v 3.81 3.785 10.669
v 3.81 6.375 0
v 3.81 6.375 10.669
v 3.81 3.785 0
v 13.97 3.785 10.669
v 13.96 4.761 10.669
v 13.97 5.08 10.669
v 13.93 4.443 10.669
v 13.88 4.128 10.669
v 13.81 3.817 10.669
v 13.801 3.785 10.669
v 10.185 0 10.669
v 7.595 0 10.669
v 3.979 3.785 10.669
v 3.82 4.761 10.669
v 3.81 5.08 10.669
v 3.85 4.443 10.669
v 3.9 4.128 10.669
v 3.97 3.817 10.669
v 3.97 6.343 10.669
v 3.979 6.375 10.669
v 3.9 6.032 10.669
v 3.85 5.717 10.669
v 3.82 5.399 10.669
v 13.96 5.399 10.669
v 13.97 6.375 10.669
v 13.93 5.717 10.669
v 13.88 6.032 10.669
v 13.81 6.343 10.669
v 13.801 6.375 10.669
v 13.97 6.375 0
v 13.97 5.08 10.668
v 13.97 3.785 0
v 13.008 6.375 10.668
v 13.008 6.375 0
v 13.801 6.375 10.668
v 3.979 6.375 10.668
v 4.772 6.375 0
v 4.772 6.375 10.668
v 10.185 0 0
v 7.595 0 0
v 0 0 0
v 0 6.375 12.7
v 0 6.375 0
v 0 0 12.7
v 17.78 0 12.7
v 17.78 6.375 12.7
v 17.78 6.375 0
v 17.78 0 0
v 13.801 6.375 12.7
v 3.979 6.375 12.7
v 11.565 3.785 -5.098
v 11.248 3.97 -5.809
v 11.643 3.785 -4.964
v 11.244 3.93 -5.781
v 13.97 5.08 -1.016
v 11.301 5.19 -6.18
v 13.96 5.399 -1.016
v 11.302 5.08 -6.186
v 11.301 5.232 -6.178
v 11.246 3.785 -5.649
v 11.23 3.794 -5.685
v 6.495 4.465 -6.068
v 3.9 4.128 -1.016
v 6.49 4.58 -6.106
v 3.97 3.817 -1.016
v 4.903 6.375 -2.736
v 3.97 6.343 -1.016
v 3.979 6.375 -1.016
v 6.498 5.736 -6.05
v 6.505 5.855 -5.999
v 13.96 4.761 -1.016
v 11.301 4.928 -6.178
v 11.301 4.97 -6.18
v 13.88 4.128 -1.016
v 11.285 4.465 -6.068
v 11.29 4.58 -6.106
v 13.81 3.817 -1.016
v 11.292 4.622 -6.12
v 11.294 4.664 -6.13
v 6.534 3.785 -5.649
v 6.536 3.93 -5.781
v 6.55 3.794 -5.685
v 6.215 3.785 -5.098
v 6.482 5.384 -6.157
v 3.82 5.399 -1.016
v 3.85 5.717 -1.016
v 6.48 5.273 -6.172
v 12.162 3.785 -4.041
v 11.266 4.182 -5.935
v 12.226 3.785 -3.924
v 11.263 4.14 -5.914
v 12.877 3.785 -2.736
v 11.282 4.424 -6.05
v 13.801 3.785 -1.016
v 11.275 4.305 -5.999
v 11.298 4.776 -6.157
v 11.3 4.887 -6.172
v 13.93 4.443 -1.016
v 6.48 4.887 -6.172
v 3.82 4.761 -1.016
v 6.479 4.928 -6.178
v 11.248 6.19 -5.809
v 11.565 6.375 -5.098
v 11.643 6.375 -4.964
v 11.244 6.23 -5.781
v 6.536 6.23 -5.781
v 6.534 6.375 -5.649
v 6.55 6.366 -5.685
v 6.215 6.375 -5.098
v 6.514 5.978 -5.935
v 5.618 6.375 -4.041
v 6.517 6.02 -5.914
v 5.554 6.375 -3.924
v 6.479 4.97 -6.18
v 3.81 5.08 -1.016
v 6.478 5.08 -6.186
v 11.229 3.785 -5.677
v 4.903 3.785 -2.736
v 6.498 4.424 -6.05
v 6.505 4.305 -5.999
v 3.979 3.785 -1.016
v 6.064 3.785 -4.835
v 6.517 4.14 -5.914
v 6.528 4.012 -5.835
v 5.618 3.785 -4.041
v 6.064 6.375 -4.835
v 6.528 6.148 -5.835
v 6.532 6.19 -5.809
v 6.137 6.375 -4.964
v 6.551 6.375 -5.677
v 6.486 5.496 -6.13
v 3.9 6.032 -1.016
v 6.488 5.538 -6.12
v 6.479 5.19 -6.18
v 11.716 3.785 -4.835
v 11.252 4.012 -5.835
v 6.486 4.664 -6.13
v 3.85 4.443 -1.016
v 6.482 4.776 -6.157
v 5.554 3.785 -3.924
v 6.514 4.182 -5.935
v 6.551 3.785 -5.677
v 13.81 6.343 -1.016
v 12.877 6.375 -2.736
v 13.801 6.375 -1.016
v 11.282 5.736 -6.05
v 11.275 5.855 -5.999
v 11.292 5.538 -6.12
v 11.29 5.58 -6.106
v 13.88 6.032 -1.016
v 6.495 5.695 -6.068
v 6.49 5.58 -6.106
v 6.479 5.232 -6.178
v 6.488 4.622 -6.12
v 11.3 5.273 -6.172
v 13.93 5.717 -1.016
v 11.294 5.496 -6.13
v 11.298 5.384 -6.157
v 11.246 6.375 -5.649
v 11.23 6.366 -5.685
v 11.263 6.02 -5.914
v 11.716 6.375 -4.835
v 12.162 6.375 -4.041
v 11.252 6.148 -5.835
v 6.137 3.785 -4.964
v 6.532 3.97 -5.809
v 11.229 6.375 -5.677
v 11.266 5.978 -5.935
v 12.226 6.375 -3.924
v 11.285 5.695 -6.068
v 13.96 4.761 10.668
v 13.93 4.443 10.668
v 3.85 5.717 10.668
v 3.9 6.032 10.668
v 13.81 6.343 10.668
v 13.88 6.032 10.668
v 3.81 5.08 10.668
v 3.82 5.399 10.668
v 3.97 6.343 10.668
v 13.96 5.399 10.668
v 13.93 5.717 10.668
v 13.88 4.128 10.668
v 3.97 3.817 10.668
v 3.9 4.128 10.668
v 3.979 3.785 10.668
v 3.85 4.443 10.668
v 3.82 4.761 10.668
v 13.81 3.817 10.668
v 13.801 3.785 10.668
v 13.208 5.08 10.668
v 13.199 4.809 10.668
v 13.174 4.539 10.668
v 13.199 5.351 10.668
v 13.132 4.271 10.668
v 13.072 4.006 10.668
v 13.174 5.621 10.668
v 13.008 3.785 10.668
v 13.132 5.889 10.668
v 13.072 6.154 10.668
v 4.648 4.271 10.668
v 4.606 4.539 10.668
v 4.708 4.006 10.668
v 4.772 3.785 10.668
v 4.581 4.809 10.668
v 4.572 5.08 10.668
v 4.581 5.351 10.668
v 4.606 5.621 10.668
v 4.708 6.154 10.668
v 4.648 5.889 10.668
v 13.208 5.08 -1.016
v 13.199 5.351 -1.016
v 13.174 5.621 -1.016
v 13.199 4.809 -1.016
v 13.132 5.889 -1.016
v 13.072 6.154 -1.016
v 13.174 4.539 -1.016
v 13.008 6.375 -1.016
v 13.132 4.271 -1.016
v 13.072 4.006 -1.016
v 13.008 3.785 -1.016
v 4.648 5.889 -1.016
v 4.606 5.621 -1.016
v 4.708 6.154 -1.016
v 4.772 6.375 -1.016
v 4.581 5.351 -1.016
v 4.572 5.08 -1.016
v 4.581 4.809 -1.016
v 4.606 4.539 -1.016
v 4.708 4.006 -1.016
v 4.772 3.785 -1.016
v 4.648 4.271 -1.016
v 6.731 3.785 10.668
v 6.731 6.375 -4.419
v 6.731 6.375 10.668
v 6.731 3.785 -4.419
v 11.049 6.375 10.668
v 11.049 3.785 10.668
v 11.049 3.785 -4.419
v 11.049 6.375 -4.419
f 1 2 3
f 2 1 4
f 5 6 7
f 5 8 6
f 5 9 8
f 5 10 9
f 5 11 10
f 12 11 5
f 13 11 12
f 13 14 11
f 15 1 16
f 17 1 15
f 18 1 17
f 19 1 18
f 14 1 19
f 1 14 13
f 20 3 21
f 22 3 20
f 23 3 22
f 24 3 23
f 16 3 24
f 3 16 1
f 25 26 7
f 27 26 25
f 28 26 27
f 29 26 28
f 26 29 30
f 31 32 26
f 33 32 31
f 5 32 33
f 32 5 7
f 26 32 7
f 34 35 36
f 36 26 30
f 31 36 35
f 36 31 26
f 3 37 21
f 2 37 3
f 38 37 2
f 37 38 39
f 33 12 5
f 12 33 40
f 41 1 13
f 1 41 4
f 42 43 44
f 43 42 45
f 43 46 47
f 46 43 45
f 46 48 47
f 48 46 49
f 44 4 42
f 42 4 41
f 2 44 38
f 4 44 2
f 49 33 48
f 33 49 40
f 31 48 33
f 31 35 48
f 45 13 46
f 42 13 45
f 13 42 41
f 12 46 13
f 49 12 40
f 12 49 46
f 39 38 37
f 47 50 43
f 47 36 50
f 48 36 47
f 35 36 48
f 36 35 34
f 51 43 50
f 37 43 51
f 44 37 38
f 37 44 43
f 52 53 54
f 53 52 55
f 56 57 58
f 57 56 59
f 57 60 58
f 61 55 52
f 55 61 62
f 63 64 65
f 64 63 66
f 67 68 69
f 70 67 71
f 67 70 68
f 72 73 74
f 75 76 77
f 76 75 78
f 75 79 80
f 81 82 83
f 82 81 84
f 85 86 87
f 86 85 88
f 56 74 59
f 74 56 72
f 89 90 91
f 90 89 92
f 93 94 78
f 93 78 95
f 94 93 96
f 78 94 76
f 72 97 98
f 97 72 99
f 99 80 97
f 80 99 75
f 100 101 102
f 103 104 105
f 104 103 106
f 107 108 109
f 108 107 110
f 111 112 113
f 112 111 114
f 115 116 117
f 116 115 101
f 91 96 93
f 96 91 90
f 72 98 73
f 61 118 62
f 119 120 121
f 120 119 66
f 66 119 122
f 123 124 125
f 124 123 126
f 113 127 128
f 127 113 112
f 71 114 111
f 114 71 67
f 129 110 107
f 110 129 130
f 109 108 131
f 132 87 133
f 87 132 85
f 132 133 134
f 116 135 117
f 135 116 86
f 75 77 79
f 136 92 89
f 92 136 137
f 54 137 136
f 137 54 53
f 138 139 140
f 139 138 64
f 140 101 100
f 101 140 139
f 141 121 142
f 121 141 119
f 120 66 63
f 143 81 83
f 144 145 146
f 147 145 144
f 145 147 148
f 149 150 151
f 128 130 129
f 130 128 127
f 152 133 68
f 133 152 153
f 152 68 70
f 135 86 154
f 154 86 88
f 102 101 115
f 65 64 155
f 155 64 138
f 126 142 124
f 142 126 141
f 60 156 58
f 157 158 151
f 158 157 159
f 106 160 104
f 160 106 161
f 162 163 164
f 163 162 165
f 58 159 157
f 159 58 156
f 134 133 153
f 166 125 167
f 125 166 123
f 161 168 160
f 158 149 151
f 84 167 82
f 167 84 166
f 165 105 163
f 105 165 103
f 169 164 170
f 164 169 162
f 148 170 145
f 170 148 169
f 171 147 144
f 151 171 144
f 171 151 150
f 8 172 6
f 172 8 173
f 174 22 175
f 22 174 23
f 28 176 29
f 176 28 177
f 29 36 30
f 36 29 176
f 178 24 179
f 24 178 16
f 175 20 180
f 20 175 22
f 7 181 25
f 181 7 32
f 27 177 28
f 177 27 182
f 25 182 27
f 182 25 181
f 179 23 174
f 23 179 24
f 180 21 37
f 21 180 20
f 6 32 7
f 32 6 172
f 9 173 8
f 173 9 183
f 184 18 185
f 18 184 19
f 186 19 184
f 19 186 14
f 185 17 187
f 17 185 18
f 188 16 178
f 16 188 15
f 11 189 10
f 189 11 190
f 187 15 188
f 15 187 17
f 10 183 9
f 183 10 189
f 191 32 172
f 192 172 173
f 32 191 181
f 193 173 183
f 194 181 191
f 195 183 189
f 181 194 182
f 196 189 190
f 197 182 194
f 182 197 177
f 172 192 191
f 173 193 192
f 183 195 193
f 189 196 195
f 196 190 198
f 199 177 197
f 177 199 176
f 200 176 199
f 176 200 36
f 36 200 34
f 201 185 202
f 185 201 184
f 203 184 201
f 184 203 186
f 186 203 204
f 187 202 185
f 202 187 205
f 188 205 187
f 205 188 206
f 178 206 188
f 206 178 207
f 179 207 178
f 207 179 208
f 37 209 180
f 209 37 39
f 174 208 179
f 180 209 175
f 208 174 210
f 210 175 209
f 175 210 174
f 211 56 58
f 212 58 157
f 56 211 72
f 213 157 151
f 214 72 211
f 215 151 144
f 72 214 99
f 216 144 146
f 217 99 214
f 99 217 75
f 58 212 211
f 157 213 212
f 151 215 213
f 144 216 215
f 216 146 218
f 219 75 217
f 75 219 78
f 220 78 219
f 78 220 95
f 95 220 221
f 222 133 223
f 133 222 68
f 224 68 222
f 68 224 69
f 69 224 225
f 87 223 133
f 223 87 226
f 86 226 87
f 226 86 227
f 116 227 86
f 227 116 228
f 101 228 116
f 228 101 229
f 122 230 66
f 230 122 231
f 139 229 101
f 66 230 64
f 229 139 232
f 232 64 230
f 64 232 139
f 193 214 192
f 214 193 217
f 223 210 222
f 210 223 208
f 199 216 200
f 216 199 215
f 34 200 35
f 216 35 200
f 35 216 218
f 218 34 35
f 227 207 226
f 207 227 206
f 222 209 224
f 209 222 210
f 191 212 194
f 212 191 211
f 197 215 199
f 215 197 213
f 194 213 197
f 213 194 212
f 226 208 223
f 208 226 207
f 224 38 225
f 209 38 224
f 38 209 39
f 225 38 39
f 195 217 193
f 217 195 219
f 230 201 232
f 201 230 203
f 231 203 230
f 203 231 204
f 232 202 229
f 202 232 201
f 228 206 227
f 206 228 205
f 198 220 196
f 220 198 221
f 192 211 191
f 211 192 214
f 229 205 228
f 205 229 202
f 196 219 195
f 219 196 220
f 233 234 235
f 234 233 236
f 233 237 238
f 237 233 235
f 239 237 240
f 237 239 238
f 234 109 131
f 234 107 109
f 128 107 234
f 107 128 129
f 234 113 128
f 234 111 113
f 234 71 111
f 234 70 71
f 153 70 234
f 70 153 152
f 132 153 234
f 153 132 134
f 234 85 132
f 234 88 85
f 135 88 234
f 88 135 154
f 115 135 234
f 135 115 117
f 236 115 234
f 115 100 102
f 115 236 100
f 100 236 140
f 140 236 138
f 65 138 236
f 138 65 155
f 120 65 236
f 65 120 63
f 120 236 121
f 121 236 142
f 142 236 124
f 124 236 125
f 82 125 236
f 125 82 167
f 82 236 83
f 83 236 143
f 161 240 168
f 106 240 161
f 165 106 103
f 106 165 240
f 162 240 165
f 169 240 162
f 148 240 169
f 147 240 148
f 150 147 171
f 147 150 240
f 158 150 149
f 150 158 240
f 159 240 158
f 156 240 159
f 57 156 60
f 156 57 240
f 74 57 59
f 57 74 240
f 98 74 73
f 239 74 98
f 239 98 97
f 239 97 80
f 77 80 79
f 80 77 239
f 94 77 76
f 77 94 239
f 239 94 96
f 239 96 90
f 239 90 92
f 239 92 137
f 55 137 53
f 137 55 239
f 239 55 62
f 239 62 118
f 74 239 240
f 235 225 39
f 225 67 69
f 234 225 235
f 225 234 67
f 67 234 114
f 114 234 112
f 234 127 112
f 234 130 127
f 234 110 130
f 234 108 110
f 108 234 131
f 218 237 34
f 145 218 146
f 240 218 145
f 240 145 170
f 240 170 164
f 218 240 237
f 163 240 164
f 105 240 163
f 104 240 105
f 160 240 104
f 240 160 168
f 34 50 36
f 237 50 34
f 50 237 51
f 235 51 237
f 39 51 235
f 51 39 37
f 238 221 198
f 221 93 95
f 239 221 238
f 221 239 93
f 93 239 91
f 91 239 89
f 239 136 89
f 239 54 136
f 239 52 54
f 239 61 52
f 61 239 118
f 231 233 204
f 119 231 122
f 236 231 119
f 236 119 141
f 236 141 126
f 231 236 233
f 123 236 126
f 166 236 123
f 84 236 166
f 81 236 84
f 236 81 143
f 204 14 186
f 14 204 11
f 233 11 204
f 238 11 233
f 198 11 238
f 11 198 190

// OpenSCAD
// Replacement twinwall clip for Palram Mythos (possibly others) greehouses
// By: Drmn4ea (drmn4ea at gmail)
// License: Creative Commons CC BY-SA

// These small plastic clips snap into holes on the outside of the greenhouse near
// the base of each polycarbonate twinwall panel (window), holding it in place.
// This clip doesn't look as svelte (flimsy) as the original, but should get the job done while being easy to print.
// My best results were with printing this model oriented with the 'clip' prongs flush against the buildpate (no supports needed), but YMMV.

// In the below, 'contacting face' is the face of the clip that contacts the twinwall, and 'bottom face' is the bottom that sits flush with the greenhouse base when clipped in.

w = .700*25.4; // Width of the contacting face (the one touching the XZ plane)
h = .500*25.4; // .520 Height of the contacting face

foot = h-(.080*25.4); // Amount of extra recessed post to give it enough spring at the 'neck' where it clips in
ankle = .000*25.4; // Distance between the topmost part of the foot and where the post slot should begin. Should be a small but non-zero value for (maybe) extra mechanical stability.

post_dia = .340*25.4; //.310 //OD of the post
post_slimmed_diameter_percent = 30; // Post will be slimmed (trimmed down) on the axis perpendicular to the direction it squeezes, both to help it fit the hole and make it more springy. Here set the percentage diameter in the slimmed direction (0-100)

post_shoulder_width = .030*25.4; // Width clip retention "shoulders" extend beyond main post diameter on each side
post_length = .350*25.4; // Amount of usable post extending beyond bottom face
post_center_to_edge = .200*25.4; // Distance of post/hole center from contacting face 

post_taper_percent = 80; // Change in diameter between top & bottom of tapered portion
post_slot_percent = 50; // Post slot width, in percentage of total post diameter
neck_length = .040 * 25.4; // Length of click-in neck from bottom face. may be ~130-150
//neckdown = .020 * 25.4; // Depth (amount of radius reduction) of neck feature from post OD
overhang_degrees = 90; // Allowed overhang angle on neck, between 0 (none, stovepipe) and 90 (full, flat, non-printable by mortals). 45-60 is probably about right.

default_fn = 100; // Default value of $fn
fudge_factor = 0.001; // Tiny fudge factor where geometry exactly touches

// The contacting face is the one touching the XZ plane.

post_slimmed_dia = post_dia*(post_slimmed_diameter_percent/100);

d = post_center_to_edge + (post_slimmed_dia/2); //.550*25.4; // Thickness of the whole thing, must be suitably larger than post_center_to_edge below

// debugging area
translate([-2,0,0])
{


}


// The main body and recess for the post
difference()
{
    cube([w,d,h], false); // the main body
//    translate([-d_outer/2, (-d_inner/2)*(post_slimmed_diameter_percent/100), 0])
//    {
//        cube([d_outer, d_inner*(post_slimmed_diameter_percent/100), post_length+h], center=false);
//    }
    translate([(w/2)-(d_outer/2), post_center_to_edge-(post_slimmed_dia/2), -fudge_factor])
    {
        // clearance around the post where it connects to the main body
        // the actual connection point is raised up (or sunken in, if looking up from the bottom)
        // by 'foot' to allow for a bit of springiness and distribute stress, as in 
        // the original part
        // Cut a 'house' shape around the post, with the roof shaped to limit the overhang
        // on the side that will face up during printing
        cube([d_outer, d_inner*(post_slimmed_diameter_percent/100), foot+(fudge_factor*2)], center=false);
        rotate([0,0,-45])
        {

            translate([0, (d_outer/2)*0, 0])
            {
                    cube([sqrt((d_outer*d_outer)/2), sqrt((d_outer*d_outer)/2), foot+(fudge_factor*2)], center=false);


            }
        }        
    }
}

// The post
// For convenience and mainly legacy reasons, the post and retention shoulders are defined in terms of a larger OD that gets carved or necked down to the real diameter.
outer_post_dia = post_dia + (post_shoulder_width * 2);
// Set up a couple vars related to the necked-down portion of the post.
// Mainly we need to know the height of an anti-overhang bevel ahead of time.
d_inner = post_dia;
d_outer = outer_post_dia;
// reach through the cobwebs back to highschool math, trig identities
// and get the cylinder height that produces the specified angle vs. the known diameter change (depth of the cut)
delta_d = d_outer - d_inner;
bevel_h = delta_d / tan(overhang_degrees);
//neck_length_full = neck_length + bevel_h;
neck_length_full = neck_length + foot - ankle;



translate([w/2, post_center_to_edge, 0-post_length])
{
    intersection()
    {
        // Post can be oversized in the direction it can squeeze, but not the other.
        // Bound the two non-squeezy sides post by a bounding box only as wide as the 
        // necked down portion of the post, so the non-squeezy sides still fit the hole.
        // This should make it easier to install. 
        // The original part had very thin blades rather than a rounded post at all...
        translate([-d_outer/2, (-d_inner/2)*(post_slimmed_diameter_percent/100), 0])
        {
            cube([d_outer, d_inner*(post_slimmed_diameter_percent/100), post_length+h], center=false);
        }
        difference()
        {
            union()
            {
                // The main body of the post, with a bit of taper to aid assembly
                // Make the tapered post by stacking a straight cylinder atop a tapered one, and adding the neck to the straight part. This simplifies adding an anti-overhang bevel to it later
                cylinder(post_length-neck_length, d1=outer_post_dia*(1-post_taper_percent/100.0), d2=outer_post_dia, false, $fn=default_fn);

                translate([0, 0, post_length-neck_length])
                {
                    cylinder(post_length+foot, d=outer_post_dia, false, $fn=default_fn);
                }
            }
            // Slot in the middle of the post
            slot_width = post_dia*(post_slot_percent/100.0);
            translate([-slot_width/2,(-post_dia/2),0]) // center the slot
            {
                // Actual slot cutout, extend most of the way down the foot
                cube([slot_width ,post_dia,post_length+(foot-ankle)], false);
            }
            // Stretched pyramid to carve the slot wider near the bottom so the sides can squeeze together more flush
            // (actually a cylinder with very low $fn rotated the right way)
            scale([1,10,1])
            {
                rotate([0,0,45])
                    {
                        // Assuming the post should be able to fully squeeze together at the bottom of the neck, the angle we need to carve out basically undoes the squeeze (slot width going from normal to zero between over the distance of post_length + foot).
                       // Consider the angle formed by a zero-width wedge starting at the top of the slot and reaching its edges at the bottom of the neck, and extending with that same angle to infinity (or at least to the bottom of the post). Its total width at the bottom of the post would be the slot width times the ratio of the slot length to the bottom of the neck to the total post/slot length.
                        cylinder(post_length+(foot-ankle), d1=slot_width/((foot)/(post_length+foot)), d2=0, $fn=4);
                    }
            }
            
            // The neckdown feature where it snaps into the greenhouse
            translate([0,0,post_length - neck_length])
            {
                // Trim a small depth (the difference of two cylinders) in the main cylinder
                difference()
                {
                    // WART: Getting inconsistent/backward taper direction when using radius parameters for cylinder, so using diameter instead.

                    //echo(bevel_h, delta_d);
                    cylinder(neck_length_full, d=d_outer+0.1, false, $fn=default_fn);
                    cylinder(neck_length_full, d=d_inner, false, $fn=default_fn);
                    cylinder(bevel_h, d1=d_outer, d2=d_inner, false, $fn=default_fn); // small bevel on lower surface of neckdown to make a reasonable overhang that can print without supports
                    translate([0,0,neck_length_full - bevel_h])
                    {
                        // WART: Encountered issues on at least one slicer not producing a solid 'wall' between the necked post and the part it protrudes from, so add a taper there too
                        cylinder(bevel_h, d1=d_inner, d2=d_outer, false, $fn=default_fn); // small bevel on lower surface of neckdown to make a reasonable overhang that can print without supports
                    }

                }
     
            }
        }
    }
}
